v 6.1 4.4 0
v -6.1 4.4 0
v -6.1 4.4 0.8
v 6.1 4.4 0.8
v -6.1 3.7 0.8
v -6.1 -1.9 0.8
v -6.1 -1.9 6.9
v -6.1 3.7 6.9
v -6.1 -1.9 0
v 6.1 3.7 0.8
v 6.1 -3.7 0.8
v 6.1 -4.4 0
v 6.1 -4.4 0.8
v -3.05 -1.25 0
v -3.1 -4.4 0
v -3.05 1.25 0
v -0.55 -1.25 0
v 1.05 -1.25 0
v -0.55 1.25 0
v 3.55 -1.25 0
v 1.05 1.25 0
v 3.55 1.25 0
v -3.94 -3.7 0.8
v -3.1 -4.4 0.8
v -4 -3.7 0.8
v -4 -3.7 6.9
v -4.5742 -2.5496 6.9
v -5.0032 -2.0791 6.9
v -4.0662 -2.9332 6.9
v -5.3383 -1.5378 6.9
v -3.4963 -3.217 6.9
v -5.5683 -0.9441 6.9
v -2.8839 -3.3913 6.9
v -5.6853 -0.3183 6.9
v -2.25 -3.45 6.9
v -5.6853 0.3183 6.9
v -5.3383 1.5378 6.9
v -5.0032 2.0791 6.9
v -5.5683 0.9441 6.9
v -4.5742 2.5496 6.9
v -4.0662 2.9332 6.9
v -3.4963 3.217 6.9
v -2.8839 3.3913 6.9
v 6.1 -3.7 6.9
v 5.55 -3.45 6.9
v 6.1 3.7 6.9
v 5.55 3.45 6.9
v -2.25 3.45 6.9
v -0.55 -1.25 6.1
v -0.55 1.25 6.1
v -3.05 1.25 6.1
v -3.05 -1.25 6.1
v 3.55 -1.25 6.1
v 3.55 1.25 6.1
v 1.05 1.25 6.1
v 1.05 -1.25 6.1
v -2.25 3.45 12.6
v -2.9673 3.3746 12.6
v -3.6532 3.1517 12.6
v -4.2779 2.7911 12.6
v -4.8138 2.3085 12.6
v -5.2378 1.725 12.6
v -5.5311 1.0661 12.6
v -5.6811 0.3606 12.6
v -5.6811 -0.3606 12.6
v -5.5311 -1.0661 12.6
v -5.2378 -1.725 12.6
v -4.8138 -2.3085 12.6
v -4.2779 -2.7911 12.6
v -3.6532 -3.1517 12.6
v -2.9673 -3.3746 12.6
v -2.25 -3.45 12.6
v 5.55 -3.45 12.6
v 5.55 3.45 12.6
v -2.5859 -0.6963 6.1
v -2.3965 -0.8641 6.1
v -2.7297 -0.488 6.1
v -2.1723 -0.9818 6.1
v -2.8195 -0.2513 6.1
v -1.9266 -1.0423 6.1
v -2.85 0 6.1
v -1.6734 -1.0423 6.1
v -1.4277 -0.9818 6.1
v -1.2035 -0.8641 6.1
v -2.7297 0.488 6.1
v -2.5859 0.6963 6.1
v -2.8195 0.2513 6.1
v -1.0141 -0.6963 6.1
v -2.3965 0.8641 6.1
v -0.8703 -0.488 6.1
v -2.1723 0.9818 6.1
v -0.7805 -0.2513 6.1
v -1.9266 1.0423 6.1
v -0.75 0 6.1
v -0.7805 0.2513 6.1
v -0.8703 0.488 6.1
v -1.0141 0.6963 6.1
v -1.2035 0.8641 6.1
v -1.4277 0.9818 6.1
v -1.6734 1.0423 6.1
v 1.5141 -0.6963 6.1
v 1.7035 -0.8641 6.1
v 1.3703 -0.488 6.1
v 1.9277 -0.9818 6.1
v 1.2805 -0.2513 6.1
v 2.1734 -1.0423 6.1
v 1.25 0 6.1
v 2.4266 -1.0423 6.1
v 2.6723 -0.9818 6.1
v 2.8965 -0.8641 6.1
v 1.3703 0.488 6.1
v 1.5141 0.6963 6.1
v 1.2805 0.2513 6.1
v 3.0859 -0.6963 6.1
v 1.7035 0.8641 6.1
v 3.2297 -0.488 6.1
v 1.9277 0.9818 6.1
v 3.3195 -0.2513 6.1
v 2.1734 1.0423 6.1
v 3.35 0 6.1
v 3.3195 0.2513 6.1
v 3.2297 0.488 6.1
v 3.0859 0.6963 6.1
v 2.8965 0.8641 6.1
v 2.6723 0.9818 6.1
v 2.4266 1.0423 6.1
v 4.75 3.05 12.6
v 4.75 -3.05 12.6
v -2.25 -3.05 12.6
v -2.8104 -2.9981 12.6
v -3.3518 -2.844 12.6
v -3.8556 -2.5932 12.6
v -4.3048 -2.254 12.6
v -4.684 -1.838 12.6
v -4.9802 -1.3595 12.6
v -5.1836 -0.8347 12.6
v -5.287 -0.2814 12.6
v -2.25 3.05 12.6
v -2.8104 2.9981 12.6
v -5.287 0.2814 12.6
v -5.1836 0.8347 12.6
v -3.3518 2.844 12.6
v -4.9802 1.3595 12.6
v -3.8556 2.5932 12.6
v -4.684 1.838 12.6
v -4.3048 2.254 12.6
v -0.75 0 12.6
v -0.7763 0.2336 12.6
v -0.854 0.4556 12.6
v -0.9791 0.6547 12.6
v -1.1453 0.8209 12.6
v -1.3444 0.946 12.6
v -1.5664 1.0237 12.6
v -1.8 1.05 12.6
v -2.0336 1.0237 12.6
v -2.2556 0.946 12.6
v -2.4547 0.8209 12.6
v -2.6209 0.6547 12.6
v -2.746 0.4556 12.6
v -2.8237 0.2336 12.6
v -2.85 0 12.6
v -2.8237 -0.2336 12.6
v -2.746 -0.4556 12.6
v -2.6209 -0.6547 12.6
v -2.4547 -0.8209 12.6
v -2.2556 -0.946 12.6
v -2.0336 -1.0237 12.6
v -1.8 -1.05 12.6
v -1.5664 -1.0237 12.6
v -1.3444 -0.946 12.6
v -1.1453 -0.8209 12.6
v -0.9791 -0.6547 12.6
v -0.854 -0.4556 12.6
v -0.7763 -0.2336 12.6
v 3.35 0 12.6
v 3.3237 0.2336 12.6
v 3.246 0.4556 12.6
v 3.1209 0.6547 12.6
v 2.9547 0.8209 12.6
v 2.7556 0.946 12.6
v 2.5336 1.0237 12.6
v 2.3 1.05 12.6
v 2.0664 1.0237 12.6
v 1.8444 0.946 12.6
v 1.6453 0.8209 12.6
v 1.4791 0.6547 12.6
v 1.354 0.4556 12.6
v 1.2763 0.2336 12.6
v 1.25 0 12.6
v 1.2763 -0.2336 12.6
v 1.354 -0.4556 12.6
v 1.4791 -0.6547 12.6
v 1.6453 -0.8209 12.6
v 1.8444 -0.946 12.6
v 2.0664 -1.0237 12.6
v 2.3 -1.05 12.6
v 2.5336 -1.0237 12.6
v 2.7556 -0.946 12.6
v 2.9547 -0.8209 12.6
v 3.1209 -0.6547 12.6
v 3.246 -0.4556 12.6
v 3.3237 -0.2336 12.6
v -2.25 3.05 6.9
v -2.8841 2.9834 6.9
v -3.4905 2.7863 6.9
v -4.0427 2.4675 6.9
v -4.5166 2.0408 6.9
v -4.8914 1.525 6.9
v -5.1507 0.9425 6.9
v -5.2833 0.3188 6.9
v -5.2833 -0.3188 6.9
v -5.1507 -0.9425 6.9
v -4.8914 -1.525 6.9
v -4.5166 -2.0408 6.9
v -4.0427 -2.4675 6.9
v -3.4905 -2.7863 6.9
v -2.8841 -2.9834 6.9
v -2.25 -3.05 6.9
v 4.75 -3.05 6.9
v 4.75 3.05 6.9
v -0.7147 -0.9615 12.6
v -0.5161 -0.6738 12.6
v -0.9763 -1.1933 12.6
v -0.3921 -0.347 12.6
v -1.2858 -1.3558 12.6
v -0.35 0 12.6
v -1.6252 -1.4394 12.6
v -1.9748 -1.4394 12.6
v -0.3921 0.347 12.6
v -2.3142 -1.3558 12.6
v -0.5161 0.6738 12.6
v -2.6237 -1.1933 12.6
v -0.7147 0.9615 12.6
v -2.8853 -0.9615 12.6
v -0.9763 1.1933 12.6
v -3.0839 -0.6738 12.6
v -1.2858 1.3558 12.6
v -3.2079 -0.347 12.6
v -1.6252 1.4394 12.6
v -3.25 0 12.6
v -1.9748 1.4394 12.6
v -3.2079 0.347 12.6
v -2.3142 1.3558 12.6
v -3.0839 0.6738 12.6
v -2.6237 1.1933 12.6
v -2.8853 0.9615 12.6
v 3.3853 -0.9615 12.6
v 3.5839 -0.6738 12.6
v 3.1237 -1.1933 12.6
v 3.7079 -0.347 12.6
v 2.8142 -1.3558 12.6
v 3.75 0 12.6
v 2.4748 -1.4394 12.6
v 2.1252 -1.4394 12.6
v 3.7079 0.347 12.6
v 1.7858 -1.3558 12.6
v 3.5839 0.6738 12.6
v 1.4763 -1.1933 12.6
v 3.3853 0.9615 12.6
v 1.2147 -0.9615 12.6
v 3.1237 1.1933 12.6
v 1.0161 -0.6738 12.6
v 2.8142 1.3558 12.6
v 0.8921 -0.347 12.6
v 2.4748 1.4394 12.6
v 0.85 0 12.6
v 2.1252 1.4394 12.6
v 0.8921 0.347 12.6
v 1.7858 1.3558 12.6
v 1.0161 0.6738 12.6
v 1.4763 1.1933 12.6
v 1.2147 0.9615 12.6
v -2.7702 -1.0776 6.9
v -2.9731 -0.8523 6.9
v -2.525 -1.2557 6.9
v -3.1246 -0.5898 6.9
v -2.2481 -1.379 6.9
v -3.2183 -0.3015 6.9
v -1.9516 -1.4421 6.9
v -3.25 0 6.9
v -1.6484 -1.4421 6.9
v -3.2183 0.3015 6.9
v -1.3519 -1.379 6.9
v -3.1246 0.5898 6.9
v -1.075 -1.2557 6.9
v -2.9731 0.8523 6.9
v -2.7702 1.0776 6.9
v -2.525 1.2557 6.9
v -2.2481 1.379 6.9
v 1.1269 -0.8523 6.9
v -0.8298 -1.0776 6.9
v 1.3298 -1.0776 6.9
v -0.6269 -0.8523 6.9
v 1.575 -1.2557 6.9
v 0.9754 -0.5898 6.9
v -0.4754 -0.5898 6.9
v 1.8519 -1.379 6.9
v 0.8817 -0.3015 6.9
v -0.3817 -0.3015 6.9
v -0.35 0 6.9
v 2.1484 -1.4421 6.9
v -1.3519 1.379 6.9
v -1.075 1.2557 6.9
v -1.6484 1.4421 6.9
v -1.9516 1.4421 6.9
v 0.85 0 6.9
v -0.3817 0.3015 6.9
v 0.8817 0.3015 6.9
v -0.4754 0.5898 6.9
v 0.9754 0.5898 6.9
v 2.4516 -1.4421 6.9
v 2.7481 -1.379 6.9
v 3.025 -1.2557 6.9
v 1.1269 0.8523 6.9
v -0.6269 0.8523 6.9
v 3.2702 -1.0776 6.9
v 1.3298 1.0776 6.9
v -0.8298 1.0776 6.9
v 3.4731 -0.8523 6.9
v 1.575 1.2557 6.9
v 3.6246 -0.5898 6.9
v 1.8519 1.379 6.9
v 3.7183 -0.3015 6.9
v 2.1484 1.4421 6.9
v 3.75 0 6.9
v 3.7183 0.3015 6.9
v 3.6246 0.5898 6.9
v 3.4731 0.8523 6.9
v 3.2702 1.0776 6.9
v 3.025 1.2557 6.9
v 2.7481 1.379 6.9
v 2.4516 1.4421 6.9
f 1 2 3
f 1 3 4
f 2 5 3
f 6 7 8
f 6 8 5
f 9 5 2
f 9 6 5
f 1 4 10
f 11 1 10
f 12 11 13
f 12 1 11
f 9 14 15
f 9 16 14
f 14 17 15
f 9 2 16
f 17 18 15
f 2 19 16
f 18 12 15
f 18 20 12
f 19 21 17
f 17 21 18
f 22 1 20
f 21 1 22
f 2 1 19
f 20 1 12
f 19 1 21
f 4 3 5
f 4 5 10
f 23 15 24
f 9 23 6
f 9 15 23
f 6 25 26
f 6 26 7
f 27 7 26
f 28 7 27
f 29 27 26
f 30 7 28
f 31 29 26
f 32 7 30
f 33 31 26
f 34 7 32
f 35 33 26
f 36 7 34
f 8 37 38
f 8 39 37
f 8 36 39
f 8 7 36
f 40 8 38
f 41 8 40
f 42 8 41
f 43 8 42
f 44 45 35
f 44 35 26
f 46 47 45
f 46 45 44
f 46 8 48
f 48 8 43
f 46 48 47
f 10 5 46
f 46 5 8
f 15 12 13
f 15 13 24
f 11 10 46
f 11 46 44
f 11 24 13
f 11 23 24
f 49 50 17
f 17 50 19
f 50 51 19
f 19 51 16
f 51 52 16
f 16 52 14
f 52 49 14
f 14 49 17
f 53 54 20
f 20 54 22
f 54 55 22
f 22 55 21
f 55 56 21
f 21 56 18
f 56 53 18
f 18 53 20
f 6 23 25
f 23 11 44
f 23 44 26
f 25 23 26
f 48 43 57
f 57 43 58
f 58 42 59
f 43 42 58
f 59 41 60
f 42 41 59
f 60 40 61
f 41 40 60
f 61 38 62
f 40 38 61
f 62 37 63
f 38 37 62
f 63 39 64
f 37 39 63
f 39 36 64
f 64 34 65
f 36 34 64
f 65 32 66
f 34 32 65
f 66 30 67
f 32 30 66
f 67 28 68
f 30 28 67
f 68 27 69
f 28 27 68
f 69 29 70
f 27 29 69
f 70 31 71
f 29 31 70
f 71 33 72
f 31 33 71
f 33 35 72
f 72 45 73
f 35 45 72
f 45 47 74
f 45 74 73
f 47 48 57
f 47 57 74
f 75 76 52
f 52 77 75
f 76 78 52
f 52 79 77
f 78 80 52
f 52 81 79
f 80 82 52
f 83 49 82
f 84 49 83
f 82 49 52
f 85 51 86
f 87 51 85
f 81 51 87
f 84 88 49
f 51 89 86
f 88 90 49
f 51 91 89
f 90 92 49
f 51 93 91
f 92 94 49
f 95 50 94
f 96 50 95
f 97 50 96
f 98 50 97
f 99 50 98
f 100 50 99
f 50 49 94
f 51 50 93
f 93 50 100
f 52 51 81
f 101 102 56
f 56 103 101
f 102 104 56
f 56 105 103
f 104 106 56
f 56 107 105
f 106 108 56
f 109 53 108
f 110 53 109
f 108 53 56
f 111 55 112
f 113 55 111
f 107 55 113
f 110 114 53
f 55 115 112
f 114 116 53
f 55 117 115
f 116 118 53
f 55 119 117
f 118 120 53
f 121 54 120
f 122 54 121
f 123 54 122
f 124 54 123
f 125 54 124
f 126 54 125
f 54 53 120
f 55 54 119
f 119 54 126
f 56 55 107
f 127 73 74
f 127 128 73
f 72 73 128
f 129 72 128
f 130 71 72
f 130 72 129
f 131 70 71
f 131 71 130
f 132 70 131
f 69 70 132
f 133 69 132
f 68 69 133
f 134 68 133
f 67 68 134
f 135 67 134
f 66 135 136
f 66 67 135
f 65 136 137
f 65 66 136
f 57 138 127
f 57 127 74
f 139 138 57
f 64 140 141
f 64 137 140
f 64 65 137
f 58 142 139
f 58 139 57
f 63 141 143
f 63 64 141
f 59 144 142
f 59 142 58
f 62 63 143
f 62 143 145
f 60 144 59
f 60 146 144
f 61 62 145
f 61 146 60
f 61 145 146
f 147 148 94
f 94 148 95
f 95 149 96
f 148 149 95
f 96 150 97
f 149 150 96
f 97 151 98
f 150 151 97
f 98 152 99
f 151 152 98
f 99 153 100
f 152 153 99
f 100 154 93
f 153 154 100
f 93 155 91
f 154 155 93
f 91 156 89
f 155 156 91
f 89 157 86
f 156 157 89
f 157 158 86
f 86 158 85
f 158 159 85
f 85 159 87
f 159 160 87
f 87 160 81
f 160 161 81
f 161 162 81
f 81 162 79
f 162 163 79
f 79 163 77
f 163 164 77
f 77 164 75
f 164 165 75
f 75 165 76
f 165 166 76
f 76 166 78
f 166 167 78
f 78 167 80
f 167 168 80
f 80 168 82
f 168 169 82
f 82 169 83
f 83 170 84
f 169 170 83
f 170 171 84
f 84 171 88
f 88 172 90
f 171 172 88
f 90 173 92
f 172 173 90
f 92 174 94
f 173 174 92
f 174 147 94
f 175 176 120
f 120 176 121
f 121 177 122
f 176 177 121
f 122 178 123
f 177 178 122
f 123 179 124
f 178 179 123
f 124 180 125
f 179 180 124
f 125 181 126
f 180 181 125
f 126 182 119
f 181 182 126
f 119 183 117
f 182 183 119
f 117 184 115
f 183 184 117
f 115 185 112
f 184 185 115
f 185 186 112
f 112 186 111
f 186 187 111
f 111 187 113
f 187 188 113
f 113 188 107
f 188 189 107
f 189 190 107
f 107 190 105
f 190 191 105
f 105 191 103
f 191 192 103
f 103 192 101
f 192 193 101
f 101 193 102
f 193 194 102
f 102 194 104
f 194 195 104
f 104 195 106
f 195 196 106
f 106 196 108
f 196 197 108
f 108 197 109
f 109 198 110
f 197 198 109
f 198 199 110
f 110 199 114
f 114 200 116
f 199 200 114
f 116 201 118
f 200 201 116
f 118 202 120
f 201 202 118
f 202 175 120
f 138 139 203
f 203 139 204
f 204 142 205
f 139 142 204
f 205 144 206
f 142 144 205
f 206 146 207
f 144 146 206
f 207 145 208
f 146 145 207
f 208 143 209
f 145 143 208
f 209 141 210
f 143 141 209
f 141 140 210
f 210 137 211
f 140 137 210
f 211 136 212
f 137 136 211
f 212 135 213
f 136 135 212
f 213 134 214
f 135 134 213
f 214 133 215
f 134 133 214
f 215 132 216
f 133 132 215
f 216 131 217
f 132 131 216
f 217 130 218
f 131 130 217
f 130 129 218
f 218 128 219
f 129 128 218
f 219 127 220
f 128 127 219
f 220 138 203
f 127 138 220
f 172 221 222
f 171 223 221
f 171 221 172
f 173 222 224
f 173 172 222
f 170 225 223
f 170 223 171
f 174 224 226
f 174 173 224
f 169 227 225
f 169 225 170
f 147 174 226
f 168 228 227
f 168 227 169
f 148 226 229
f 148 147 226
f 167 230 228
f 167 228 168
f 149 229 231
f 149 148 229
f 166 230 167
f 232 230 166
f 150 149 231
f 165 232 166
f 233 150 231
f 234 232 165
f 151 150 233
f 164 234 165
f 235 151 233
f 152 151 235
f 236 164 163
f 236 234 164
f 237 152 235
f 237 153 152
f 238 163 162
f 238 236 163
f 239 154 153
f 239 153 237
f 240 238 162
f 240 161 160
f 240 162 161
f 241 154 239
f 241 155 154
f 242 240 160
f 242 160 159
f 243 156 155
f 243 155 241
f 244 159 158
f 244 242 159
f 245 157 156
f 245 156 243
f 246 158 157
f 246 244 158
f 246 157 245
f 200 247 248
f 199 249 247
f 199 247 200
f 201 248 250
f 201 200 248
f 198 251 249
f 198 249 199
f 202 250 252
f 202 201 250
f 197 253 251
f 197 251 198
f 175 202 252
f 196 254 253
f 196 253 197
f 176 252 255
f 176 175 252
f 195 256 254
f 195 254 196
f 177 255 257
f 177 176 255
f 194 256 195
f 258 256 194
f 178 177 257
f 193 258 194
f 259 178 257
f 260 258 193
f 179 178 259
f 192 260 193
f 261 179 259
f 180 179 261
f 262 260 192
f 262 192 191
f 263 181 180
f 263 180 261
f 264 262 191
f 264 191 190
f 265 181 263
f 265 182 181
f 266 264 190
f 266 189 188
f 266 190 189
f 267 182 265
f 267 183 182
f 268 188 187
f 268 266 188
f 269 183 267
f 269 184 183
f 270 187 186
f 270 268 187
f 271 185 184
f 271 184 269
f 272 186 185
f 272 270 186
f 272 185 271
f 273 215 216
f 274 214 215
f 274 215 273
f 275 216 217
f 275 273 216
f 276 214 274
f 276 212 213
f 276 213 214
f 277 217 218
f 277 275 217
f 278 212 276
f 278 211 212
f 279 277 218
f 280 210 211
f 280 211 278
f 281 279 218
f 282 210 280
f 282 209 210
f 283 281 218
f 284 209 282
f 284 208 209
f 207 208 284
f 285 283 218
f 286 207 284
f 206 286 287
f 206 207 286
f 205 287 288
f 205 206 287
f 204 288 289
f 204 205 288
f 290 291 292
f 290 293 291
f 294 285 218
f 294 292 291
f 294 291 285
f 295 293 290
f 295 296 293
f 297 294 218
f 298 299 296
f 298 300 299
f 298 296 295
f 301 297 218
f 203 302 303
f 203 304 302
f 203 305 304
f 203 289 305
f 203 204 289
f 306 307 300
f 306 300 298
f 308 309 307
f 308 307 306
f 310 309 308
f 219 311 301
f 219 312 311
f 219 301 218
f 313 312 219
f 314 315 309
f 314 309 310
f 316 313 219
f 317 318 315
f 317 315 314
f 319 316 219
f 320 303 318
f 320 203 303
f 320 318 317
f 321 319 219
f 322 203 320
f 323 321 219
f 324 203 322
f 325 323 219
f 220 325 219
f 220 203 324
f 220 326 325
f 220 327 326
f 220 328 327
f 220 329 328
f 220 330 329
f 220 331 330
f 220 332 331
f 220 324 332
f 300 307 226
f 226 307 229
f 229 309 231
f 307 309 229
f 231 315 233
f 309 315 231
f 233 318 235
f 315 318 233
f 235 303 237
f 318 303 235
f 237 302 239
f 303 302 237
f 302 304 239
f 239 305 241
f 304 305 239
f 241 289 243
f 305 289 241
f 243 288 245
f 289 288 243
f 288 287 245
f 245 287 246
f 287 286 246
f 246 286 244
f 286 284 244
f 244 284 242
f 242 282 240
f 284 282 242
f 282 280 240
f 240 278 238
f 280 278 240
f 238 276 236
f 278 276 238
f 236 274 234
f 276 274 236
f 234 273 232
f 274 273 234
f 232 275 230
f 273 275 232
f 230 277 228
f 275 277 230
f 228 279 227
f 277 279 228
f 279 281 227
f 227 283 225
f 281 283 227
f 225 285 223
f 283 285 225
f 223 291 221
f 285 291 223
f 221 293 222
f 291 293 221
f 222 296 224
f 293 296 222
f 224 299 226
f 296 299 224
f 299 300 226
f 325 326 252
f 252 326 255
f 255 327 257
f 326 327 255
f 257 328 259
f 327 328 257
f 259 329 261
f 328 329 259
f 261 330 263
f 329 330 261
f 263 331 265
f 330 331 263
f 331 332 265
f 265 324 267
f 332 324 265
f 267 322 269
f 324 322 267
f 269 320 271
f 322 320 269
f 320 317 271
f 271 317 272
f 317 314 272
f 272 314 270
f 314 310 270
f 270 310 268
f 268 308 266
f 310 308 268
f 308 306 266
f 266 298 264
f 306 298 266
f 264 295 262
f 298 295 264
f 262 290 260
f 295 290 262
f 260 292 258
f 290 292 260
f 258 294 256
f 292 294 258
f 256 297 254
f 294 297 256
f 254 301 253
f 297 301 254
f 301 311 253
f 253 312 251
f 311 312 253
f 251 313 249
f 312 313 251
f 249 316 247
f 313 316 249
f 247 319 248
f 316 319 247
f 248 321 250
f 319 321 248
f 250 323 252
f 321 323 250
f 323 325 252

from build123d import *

# Parameters (mm, degrees)
PAD_DEPTH           = 0.8
PAD001_DEPTH        = 6.1
PAD002_DEPTH        = 5.7
POCKET_DEPTH        = 5.7
PAD003_PROFILE_R    = 1.45
PAD003_DEPTH        = 5.7
POCKET001_PROFILE_R = 1.05
POCKET001_DEPTH     = 12.6
POCKET002_PROFILE_W = 2.5
POCKET002_PROFILE_H = 2.5
POCKET002_DEPTH     = 6.1


with BuildPart() as part:
    # Sketch → Pad (new body)
    with BuildSketch(Plane.XY):
        Polygon((-6.1, 4.4), (6.1, 4.4), (6.1, -4.4), (-3.1, -4.4), (-6.1, -1.9), align=None)
    extrude(amount=PAD_DEPTH)

    # Pad001_Profile → Pad001 (join)
    with BuildSketch(Plane(origin=(0.115466, 0.066286, 0.8), x_dir=(0, 1, 0), z_dir=(0, 0, 1))):
        Polygon((3.633714, -5.984534), (3.633714, 6.215466), (-1.966286, 6.215466), (-3.766286, 4.115466), (-3.766286, -5.984534), align=None)
    extrude(amount=PAD001_DEPTH)

    # Pad002_Profile → Pad002 (join)
    with BuildSketch(Plane(origin=(0.266979, 0, 6.9), x_dir=(0, 1, 0), z_dir=(0, 0, 1))):
        with BuildLine():
            Line((3.45, -5.283021), (3.45, 2.516979))
            ThreePointArc((3.45, 2.516979), (0, 5.966979), (-3.45, 2.516979))
            Line((-3.45, 2.516979), (-3.45, -5.283021))
            Line((-3.45, -5.283021), (3.45, -5.283021))
        make_face()
    extrude(amount=PAD002_DEPTH)

    # Pocket_Profile → Pocket (cut)
    with BuildSketch(Plane(origin=(0.027606, 0, 12.6), x_dir=(0, 1, 0), z_dir=(0, 0, 1))):
        with BuildLine():
            Line((3.05, -4.722394), (3.05, 2.277606))
            ThreePointArc((3.05, 2.277606), (0, 5.327606), (-3.05, 2.277606))
            Line((-3.05, 2.277606), (-3.05, -4.722394))
            Line((-3.05, -4.722394), (3.05, -4.722394))
        make_face()
    extrude(amount=-POCKET_DEPTH, mode=Mode.SUBTRACT)

    # Pad003_Profile → Pad003 (join)
    with BuildSketch(Plane(origin=(2.3, 0, 6.9), x_dir=(0, 1, 0), z_dir=(0, 0, 1))):
        Circle(PAD003_PROFILE_R)
        with Locations((0, 4.1)):
            Circle(PAD003_PROFILE_R)
    extrude(amount=PAD003_DEPTH)

    # Pocket001_Profile → Pocket001 (cut)
    with BuildSketch(Plane(origin=(-1.8, 0, 12.6), x_dir=(0, 1, 0), z_dir=(0, 0, 1))):
        Circle(POCKET001_PROFILE_R)
        with Locations((0, -4.1)):
            Circle(POCKET001_PROFILE_R)
    extrude(amount=-POCKET001_DEPTH, mode=Mode.SUBTRACT)

    # Pocket002_Profile → Pocket002 (cut)
    with BuildSketch(Plane(origin=(2.3, 0, 6.1), x_dir=(0, 1, 0), z_dir=(0, 0, 1))):
        Rectangle(POCKET002_PROFILE_W, POCKET002_PROFILE_H)
        with Locations((0, 4.1)):
            Rectangle(POCKET002_PROFILE_W, POCKET002_PROFILE_H)
    extrude(amount=-POCKET002_DEPTH, mode=Mode.SUBTRACT)


solid = part.part
